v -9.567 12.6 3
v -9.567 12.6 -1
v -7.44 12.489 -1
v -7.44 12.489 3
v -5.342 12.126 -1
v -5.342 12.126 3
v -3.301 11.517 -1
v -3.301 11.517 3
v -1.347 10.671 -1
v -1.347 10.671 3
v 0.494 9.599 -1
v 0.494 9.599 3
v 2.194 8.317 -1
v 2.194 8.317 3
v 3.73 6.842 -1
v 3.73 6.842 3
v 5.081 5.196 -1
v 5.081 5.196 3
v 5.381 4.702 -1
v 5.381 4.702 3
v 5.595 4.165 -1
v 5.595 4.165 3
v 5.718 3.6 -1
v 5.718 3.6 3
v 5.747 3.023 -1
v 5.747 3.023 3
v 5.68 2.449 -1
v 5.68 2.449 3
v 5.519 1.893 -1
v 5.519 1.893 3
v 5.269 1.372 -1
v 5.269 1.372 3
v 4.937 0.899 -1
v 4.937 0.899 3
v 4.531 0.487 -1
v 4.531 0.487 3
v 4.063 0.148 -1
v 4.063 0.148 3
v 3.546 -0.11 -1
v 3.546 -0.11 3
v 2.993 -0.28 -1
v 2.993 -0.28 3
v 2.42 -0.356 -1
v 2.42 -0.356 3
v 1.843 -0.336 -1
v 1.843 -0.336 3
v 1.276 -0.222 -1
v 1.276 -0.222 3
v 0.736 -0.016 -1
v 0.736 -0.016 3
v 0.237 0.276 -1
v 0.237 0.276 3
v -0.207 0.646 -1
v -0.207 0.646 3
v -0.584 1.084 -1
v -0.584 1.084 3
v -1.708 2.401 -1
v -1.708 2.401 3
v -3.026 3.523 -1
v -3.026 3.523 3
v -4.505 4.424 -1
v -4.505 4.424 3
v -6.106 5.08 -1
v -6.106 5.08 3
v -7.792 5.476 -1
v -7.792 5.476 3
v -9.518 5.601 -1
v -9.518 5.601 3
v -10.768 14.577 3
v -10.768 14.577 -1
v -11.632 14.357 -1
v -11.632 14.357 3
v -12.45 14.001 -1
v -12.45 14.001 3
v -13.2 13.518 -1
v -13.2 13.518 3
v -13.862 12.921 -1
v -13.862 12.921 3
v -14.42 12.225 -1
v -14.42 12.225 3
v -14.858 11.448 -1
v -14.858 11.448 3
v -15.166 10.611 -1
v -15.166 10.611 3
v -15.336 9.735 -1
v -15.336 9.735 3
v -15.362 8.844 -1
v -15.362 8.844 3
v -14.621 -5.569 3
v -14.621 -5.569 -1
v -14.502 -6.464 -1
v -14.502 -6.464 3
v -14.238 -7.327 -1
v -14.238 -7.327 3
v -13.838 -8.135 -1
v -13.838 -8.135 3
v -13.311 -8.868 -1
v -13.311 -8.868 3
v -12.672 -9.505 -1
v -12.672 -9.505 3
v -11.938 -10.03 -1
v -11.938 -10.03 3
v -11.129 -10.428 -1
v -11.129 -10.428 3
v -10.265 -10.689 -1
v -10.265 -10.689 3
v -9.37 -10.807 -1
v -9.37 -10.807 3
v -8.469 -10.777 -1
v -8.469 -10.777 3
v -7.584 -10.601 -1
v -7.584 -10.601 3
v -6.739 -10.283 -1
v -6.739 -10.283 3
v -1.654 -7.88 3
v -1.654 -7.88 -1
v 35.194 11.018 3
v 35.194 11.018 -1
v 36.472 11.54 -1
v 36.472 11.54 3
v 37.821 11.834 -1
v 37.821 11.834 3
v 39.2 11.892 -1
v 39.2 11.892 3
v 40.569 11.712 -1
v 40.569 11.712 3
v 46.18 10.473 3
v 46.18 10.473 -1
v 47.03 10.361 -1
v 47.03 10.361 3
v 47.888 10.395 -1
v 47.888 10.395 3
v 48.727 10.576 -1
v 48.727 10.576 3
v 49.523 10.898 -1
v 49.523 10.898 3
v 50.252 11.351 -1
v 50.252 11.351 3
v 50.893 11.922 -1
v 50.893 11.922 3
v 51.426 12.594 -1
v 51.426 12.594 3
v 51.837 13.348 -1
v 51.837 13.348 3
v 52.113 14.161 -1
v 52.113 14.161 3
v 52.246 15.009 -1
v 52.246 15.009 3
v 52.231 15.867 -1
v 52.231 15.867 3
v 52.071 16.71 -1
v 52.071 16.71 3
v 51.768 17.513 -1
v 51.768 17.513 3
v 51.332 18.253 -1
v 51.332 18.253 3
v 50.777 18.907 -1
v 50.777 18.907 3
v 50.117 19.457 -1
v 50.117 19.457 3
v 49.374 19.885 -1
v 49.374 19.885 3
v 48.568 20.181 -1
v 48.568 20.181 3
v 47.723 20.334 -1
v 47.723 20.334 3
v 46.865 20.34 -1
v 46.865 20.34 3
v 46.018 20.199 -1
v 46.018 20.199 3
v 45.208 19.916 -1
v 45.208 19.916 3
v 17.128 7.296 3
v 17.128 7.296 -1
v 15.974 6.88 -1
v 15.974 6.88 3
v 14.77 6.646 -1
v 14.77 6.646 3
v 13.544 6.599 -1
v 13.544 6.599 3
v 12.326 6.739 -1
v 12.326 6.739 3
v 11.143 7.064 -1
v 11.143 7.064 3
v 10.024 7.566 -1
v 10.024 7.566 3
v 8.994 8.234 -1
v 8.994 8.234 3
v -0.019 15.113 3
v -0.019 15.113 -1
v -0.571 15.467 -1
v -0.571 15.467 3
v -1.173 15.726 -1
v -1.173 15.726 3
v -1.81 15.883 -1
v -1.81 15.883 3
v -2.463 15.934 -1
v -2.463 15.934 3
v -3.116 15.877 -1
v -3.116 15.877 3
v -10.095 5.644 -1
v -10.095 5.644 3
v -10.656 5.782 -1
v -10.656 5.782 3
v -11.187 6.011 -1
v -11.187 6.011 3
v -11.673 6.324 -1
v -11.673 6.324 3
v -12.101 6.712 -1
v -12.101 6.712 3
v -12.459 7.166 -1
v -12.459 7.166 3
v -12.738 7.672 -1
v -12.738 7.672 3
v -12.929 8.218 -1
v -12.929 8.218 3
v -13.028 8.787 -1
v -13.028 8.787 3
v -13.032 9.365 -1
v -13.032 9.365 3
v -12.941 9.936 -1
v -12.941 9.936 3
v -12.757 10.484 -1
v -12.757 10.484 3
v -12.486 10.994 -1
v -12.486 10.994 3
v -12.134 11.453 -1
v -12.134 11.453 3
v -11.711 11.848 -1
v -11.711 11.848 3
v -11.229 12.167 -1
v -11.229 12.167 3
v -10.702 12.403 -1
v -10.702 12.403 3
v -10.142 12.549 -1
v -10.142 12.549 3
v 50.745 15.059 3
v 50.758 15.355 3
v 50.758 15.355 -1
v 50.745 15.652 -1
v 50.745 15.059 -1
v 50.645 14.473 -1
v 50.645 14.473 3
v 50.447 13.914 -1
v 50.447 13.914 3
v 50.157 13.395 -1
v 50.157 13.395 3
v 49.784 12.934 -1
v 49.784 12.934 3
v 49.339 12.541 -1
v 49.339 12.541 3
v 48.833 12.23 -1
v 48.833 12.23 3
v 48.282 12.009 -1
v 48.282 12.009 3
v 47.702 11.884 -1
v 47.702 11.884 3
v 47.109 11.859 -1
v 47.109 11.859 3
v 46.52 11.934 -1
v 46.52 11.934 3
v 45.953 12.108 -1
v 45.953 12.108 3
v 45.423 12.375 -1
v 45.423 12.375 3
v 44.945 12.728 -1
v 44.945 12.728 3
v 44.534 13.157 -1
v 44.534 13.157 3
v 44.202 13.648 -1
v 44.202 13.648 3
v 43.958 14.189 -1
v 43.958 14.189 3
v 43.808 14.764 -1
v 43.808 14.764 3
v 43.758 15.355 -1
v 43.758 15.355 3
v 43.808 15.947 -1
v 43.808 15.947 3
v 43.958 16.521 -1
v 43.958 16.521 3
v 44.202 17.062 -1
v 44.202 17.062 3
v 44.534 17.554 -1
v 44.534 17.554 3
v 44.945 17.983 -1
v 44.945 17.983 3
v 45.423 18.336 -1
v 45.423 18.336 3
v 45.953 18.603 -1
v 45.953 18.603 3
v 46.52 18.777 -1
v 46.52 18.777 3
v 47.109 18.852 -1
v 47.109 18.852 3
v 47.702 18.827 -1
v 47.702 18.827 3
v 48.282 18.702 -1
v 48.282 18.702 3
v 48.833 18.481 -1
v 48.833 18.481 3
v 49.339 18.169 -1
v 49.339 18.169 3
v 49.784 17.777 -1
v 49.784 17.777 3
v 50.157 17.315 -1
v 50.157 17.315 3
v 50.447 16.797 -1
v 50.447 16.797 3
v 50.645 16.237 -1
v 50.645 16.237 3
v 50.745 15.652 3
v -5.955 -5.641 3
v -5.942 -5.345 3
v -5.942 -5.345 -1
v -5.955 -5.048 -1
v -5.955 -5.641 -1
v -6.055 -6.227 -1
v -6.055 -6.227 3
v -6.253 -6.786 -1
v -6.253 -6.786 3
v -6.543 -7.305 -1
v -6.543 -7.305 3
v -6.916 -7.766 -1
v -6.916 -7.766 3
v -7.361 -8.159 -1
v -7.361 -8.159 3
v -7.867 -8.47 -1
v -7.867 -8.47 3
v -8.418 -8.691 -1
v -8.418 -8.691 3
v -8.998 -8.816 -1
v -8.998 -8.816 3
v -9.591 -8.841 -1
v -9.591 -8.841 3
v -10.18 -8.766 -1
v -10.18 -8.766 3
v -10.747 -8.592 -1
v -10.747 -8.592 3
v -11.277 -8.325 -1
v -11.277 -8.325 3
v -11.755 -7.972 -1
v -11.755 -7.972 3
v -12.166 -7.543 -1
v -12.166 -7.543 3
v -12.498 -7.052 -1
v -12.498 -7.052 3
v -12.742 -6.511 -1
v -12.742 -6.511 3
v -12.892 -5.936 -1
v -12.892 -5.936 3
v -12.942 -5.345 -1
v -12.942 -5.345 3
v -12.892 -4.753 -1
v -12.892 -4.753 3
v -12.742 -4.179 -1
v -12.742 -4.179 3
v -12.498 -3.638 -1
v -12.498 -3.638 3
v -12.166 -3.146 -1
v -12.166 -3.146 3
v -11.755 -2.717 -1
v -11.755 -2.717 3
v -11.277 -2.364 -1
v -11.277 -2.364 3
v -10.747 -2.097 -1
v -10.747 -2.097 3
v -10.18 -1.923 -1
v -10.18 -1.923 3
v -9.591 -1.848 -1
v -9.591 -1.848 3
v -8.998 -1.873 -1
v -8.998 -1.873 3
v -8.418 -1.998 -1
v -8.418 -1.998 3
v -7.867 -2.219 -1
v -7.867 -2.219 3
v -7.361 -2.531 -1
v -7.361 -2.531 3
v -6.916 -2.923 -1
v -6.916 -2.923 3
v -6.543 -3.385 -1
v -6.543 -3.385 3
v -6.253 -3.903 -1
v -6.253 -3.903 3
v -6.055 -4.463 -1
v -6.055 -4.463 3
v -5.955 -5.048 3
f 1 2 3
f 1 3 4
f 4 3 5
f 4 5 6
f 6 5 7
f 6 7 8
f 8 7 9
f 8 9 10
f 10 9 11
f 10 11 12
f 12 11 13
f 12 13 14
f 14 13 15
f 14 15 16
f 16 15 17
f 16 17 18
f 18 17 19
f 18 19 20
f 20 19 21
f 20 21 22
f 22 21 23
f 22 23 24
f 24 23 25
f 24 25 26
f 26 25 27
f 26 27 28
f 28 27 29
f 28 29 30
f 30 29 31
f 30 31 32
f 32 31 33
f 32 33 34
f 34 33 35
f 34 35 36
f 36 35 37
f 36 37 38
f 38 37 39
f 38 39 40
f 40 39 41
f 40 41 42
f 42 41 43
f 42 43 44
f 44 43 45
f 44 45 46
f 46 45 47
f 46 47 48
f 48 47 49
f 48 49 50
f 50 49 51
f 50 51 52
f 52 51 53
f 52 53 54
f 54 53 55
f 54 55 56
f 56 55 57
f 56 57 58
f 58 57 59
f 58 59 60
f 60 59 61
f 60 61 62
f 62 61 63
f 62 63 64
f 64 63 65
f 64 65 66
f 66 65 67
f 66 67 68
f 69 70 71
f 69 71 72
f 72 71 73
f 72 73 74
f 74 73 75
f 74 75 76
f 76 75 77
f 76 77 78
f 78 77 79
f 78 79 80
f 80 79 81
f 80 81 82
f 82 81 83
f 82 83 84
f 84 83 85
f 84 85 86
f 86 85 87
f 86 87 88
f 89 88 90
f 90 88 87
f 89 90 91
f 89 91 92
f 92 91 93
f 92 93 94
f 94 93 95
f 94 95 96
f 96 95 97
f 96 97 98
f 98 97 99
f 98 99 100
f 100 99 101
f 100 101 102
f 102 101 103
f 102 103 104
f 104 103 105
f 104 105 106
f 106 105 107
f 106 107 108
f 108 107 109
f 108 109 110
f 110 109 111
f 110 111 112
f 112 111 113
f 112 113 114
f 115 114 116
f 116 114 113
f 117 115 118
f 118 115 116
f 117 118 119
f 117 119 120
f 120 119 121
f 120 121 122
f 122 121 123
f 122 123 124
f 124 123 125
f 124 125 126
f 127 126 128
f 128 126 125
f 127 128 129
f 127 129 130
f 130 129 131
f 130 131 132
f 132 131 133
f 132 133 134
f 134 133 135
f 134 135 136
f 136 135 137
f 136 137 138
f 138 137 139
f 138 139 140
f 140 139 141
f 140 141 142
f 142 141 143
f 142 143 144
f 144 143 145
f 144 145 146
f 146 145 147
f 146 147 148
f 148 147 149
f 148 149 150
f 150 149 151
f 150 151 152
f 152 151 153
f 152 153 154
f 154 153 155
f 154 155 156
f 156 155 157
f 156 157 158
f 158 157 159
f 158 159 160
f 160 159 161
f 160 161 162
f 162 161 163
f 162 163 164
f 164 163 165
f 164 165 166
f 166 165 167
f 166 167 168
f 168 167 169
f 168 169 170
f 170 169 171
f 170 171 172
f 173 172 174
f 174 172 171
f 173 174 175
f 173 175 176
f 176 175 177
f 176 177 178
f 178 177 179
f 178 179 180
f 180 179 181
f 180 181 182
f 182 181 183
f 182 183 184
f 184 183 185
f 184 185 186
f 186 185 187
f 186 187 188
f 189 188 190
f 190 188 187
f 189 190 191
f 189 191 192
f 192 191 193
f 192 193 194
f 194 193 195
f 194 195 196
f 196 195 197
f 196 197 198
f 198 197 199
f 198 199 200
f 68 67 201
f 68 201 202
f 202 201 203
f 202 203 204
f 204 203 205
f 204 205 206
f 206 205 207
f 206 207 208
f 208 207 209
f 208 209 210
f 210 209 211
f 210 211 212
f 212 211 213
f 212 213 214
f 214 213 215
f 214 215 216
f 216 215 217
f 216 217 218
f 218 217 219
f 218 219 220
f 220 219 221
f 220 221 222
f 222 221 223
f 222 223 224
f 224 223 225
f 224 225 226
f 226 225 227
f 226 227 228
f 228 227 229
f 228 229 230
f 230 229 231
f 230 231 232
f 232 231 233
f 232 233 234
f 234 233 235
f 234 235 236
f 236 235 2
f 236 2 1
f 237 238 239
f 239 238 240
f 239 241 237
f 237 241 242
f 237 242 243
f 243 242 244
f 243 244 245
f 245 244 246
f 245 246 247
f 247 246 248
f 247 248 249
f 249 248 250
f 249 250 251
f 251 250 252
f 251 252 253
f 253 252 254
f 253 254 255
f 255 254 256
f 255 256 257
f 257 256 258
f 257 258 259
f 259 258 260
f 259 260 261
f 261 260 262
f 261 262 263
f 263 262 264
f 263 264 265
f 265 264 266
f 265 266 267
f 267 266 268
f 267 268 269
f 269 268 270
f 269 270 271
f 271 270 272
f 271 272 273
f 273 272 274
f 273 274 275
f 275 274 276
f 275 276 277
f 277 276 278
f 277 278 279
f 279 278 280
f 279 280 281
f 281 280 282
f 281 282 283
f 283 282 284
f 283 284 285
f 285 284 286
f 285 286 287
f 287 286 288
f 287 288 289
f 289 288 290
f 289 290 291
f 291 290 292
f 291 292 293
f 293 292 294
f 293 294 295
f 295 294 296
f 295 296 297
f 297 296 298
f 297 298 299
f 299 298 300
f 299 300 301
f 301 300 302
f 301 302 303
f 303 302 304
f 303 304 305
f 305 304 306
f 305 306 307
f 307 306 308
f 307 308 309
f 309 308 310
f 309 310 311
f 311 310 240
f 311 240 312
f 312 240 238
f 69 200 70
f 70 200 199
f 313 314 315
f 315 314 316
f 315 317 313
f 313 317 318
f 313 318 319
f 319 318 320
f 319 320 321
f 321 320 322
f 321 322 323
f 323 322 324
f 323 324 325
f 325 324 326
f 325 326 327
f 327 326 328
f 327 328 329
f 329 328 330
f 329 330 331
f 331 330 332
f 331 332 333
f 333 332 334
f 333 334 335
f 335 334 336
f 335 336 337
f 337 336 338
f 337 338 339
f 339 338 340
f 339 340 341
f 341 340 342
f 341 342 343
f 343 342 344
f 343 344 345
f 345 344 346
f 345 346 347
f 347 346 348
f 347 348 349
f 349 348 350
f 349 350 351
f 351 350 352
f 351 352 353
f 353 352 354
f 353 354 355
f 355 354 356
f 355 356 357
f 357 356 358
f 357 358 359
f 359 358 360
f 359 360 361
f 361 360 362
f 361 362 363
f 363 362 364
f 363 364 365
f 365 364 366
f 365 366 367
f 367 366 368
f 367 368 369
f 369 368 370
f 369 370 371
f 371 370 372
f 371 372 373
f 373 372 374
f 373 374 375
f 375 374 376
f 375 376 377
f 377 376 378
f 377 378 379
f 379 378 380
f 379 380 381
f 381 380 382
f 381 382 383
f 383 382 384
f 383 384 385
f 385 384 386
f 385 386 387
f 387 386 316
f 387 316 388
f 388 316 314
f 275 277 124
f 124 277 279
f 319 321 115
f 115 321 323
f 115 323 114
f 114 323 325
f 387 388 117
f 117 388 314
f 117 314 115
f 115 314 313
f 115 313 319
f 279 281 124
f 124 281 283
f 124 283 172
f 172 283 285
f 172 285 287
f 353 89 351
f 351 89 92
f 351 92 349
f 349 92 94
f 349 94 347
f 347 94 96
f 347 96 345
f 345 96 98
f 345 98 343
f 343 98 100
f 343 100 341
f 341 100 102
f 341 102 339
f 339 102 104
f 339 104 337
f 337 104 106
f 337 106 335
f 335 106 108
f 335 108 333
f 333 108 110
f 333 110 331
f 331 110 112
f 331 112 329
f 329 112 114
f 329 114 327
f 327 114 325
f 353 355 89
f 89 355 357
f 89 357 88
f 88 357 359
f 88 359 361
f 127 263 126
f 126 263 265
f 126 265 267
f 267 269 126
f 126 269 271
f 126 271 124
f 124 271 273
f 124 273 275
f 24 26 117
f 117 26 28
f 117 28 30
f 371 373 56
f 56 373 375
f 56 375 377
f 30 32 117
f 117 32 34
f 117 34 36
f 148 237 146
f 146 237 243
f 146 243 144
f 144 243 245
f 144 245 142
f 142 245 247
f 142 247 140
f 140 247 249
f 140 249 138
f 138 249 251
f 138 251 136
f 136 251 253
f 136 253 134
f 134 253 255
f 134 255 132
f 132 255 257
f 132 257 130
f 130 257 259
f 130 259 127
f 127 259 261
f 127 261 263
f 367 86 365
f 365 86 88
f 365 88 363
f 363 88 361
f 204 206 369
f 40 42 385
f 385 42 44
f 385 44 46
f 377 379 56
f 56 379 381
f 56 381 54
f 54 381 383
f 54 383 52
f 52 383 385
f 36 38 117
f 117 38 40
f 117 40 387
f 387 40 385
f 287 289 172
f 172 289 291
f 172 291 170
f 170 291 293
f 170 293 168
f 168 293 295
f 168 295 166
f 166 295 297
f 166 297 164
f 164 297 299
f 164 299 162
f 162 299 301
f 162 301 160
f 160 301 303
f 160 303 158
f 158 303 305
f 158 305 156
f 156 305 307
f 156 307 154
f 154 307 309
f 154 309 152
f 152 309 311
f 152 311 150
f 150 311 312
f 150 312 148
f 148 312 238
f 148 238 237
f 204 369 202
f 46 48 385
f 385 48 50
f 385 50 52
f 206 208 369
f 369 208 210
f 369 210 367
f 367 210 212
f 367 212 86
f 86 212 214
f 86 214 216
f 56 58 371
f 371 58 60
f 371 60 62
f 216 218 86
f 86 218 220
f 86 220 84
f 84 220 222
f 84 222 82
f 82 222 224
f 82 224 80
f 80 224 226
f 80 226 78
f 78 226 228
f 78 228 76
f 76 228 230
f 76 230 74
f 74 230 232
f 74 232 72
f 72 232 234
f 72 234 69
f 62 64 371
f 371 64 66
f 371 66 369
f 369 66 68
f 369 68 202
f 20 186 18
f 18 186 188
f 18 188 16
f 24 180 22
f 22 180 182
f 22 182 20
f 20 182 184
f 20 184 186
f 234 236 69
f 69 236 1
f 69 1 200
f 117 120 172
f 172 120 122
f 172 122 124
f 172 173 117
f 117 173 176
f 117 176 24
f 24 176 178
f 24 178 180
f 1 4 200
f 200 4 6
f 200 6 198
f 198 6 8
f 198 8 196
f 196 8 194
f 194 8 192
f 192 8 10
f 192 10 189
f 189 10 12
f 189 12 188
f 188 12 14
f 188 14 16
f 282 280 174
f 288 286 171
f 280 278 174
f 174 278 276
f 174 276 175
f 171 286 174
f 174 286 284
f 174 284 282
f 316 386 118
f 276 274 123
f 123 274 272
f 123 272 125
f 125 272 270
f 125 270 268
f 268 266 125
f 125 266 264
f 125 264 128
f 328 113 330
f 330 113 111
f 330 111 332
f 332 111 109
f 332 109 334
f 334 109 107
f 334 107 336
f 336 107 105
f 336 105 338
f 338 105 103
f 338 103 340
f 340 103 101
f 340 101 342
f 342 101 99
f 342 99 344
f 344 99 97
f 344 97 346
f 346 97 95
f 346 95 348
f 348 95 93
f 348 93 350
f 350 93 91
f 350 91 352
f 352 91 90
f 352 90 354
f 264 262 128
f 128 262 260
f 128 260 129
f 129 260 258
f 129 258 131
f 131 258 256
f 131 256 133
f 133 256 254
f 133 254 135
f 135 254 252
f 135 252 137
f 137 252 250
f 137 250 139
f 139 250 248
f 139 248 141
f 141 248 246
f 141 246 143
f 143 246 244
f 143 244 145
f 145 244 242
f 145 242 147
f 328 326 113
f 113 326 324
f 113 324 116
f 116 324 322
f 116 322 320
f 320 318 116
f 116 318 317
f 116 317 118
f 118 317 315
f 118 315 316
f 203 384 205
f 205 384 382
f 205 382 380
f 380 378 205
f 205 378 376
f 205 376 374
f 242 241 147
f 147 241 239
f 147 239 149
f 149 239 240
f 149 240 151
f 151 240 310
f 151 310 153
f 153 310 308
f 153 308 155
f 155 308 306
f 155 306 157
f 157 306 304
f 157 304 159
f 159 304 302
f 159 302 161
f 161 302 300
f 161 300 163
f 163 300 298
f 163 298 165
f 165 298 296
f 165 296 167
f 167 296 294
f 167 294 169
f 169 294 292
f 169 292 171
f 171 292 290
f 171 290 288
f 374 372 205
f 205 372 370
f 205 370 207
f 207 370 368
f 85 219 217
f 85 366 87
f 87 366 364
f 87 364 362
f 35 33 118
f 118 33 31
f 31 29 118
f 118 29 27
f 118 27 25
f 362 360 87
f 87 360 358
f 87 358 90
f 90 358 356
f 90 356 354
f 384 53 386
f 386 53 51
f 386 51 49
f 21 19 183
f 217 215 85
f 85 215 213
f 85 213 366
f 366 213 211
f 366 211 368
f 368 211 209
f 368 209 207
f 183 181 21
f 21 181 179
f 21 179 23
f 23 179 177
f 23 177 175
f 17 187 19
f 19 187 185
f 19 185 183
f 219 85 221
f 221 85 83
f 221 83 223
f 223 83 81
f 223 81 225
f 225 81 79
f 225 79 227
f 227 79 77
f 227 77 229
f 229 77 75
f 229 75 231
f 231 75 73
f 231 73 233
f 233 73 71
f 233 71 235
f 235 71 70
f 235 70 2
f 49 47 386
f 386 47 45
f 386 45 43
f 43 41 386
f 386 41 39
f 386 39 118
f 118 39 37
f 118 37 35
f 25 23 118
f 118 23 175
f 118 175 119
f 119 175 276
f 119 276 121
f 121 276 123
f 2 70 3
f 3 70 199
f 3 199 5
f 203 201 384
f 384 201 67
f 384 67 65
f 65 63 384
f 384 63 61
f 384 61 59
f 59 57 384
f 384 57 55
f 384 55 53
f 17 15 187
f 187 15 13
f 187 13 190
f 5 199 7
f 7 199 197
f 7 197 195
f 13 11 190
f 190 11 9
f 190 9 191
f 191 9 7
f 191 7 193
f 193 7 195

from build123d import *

# Parameters (mm, degrees)
SKETCH2_R           = 1.75
BOSS_EXTRUDE1_DEPTH = 2
SCALE1_SCALE        = 2


with BuildPart() as part:
    # Sketch2 → Boss-Extrude1 (new body)
    with BuildSketch(Plane.XY):
        with BuildLine():
            Line((-2.959686812, 7.094235734), (-2.589510897, -0.112410482))
            ThreePointArc((-2.589510897, -0.112410482), (-1.247895547, -2.342588234), (1.351636108, -2.469315214))
            Line((1.351636108, -2.469315214), (3.894134078, -1.267559521))
            Line((3.894134078, -1.267559521), (22.318004544, 8.181471599))
            ThreePointArc((22.318004544, 8.181471599), (23.631672458, 8.589402593), (25.00585725, 8.528187863))
            Line((25.00585725, 8.528187863), (27.810968992, 7.908802431))
            ThreePointArc((27.810968992, 7.908802431), (30.836871293, 10.605873355), (27.325176398, 12.630293092))
            Line((27.325176398, 12.630293092), (13.285071523, 6.320301234))
            ThreePointArc((13.285071523, 6.320301234), (11.187238244, 5.995090505), (9.218440829, 6.78913284))
            Line((9.218440829, 6.78913284), (4.711624461, 10.229038009))
            ThreePointArc((4.711624461, 10.229038009), (3.977045573, 10.581042261), (3.163031294, 10.61094026))
            Line((3.163031294, 10.61094026), (-0.662699736, 9.960674362))
            ThreePointArc((-0.662699736, 9.960674362), (-2.356294969, 8.964265917), (-2.959686812, 7.094235734))
        make_face()
        Circle(SKETCH2_R, mode=Mode.SUBTRACT)
        with Locations((28.35, 10.35)):
            Circle(SKETCH2_R, mode=Mode.SUBTRACT)
        with BuildLine():
            ThreePointArc((-0.062114538, 8.972511771), (-1.799958067, 7.210439165), (-0.037885462, 5.472595636))
            ThreePointArc((-0.037885462, 5.472595636), (2.468926518, 4.884172412), (4.429179601, 3.21451495))
            ThreePointArc((4.429179601, 3.21451495), (6.873384478, 2.826104706), (7.261794722, 5.270309583))
            ThreePointArc((7.261794722, 5.270309583), (4.047891296, 8.007771334), (-0.062114538, 8.972511771))
        make_face(mode=Mode.SUBTRACT)
    extrude(amount=BOSS_EXTRUDE1_DEPTH)


with BuildPart() as part_1:
    # Scale1: scaled about (9.442389577, 5.344617661, 1)
    add(part.part.scale(SCALE1_SCALE).moved(Location((-9.442389577, -5.344617661, -1))))


solid = part_1.part
